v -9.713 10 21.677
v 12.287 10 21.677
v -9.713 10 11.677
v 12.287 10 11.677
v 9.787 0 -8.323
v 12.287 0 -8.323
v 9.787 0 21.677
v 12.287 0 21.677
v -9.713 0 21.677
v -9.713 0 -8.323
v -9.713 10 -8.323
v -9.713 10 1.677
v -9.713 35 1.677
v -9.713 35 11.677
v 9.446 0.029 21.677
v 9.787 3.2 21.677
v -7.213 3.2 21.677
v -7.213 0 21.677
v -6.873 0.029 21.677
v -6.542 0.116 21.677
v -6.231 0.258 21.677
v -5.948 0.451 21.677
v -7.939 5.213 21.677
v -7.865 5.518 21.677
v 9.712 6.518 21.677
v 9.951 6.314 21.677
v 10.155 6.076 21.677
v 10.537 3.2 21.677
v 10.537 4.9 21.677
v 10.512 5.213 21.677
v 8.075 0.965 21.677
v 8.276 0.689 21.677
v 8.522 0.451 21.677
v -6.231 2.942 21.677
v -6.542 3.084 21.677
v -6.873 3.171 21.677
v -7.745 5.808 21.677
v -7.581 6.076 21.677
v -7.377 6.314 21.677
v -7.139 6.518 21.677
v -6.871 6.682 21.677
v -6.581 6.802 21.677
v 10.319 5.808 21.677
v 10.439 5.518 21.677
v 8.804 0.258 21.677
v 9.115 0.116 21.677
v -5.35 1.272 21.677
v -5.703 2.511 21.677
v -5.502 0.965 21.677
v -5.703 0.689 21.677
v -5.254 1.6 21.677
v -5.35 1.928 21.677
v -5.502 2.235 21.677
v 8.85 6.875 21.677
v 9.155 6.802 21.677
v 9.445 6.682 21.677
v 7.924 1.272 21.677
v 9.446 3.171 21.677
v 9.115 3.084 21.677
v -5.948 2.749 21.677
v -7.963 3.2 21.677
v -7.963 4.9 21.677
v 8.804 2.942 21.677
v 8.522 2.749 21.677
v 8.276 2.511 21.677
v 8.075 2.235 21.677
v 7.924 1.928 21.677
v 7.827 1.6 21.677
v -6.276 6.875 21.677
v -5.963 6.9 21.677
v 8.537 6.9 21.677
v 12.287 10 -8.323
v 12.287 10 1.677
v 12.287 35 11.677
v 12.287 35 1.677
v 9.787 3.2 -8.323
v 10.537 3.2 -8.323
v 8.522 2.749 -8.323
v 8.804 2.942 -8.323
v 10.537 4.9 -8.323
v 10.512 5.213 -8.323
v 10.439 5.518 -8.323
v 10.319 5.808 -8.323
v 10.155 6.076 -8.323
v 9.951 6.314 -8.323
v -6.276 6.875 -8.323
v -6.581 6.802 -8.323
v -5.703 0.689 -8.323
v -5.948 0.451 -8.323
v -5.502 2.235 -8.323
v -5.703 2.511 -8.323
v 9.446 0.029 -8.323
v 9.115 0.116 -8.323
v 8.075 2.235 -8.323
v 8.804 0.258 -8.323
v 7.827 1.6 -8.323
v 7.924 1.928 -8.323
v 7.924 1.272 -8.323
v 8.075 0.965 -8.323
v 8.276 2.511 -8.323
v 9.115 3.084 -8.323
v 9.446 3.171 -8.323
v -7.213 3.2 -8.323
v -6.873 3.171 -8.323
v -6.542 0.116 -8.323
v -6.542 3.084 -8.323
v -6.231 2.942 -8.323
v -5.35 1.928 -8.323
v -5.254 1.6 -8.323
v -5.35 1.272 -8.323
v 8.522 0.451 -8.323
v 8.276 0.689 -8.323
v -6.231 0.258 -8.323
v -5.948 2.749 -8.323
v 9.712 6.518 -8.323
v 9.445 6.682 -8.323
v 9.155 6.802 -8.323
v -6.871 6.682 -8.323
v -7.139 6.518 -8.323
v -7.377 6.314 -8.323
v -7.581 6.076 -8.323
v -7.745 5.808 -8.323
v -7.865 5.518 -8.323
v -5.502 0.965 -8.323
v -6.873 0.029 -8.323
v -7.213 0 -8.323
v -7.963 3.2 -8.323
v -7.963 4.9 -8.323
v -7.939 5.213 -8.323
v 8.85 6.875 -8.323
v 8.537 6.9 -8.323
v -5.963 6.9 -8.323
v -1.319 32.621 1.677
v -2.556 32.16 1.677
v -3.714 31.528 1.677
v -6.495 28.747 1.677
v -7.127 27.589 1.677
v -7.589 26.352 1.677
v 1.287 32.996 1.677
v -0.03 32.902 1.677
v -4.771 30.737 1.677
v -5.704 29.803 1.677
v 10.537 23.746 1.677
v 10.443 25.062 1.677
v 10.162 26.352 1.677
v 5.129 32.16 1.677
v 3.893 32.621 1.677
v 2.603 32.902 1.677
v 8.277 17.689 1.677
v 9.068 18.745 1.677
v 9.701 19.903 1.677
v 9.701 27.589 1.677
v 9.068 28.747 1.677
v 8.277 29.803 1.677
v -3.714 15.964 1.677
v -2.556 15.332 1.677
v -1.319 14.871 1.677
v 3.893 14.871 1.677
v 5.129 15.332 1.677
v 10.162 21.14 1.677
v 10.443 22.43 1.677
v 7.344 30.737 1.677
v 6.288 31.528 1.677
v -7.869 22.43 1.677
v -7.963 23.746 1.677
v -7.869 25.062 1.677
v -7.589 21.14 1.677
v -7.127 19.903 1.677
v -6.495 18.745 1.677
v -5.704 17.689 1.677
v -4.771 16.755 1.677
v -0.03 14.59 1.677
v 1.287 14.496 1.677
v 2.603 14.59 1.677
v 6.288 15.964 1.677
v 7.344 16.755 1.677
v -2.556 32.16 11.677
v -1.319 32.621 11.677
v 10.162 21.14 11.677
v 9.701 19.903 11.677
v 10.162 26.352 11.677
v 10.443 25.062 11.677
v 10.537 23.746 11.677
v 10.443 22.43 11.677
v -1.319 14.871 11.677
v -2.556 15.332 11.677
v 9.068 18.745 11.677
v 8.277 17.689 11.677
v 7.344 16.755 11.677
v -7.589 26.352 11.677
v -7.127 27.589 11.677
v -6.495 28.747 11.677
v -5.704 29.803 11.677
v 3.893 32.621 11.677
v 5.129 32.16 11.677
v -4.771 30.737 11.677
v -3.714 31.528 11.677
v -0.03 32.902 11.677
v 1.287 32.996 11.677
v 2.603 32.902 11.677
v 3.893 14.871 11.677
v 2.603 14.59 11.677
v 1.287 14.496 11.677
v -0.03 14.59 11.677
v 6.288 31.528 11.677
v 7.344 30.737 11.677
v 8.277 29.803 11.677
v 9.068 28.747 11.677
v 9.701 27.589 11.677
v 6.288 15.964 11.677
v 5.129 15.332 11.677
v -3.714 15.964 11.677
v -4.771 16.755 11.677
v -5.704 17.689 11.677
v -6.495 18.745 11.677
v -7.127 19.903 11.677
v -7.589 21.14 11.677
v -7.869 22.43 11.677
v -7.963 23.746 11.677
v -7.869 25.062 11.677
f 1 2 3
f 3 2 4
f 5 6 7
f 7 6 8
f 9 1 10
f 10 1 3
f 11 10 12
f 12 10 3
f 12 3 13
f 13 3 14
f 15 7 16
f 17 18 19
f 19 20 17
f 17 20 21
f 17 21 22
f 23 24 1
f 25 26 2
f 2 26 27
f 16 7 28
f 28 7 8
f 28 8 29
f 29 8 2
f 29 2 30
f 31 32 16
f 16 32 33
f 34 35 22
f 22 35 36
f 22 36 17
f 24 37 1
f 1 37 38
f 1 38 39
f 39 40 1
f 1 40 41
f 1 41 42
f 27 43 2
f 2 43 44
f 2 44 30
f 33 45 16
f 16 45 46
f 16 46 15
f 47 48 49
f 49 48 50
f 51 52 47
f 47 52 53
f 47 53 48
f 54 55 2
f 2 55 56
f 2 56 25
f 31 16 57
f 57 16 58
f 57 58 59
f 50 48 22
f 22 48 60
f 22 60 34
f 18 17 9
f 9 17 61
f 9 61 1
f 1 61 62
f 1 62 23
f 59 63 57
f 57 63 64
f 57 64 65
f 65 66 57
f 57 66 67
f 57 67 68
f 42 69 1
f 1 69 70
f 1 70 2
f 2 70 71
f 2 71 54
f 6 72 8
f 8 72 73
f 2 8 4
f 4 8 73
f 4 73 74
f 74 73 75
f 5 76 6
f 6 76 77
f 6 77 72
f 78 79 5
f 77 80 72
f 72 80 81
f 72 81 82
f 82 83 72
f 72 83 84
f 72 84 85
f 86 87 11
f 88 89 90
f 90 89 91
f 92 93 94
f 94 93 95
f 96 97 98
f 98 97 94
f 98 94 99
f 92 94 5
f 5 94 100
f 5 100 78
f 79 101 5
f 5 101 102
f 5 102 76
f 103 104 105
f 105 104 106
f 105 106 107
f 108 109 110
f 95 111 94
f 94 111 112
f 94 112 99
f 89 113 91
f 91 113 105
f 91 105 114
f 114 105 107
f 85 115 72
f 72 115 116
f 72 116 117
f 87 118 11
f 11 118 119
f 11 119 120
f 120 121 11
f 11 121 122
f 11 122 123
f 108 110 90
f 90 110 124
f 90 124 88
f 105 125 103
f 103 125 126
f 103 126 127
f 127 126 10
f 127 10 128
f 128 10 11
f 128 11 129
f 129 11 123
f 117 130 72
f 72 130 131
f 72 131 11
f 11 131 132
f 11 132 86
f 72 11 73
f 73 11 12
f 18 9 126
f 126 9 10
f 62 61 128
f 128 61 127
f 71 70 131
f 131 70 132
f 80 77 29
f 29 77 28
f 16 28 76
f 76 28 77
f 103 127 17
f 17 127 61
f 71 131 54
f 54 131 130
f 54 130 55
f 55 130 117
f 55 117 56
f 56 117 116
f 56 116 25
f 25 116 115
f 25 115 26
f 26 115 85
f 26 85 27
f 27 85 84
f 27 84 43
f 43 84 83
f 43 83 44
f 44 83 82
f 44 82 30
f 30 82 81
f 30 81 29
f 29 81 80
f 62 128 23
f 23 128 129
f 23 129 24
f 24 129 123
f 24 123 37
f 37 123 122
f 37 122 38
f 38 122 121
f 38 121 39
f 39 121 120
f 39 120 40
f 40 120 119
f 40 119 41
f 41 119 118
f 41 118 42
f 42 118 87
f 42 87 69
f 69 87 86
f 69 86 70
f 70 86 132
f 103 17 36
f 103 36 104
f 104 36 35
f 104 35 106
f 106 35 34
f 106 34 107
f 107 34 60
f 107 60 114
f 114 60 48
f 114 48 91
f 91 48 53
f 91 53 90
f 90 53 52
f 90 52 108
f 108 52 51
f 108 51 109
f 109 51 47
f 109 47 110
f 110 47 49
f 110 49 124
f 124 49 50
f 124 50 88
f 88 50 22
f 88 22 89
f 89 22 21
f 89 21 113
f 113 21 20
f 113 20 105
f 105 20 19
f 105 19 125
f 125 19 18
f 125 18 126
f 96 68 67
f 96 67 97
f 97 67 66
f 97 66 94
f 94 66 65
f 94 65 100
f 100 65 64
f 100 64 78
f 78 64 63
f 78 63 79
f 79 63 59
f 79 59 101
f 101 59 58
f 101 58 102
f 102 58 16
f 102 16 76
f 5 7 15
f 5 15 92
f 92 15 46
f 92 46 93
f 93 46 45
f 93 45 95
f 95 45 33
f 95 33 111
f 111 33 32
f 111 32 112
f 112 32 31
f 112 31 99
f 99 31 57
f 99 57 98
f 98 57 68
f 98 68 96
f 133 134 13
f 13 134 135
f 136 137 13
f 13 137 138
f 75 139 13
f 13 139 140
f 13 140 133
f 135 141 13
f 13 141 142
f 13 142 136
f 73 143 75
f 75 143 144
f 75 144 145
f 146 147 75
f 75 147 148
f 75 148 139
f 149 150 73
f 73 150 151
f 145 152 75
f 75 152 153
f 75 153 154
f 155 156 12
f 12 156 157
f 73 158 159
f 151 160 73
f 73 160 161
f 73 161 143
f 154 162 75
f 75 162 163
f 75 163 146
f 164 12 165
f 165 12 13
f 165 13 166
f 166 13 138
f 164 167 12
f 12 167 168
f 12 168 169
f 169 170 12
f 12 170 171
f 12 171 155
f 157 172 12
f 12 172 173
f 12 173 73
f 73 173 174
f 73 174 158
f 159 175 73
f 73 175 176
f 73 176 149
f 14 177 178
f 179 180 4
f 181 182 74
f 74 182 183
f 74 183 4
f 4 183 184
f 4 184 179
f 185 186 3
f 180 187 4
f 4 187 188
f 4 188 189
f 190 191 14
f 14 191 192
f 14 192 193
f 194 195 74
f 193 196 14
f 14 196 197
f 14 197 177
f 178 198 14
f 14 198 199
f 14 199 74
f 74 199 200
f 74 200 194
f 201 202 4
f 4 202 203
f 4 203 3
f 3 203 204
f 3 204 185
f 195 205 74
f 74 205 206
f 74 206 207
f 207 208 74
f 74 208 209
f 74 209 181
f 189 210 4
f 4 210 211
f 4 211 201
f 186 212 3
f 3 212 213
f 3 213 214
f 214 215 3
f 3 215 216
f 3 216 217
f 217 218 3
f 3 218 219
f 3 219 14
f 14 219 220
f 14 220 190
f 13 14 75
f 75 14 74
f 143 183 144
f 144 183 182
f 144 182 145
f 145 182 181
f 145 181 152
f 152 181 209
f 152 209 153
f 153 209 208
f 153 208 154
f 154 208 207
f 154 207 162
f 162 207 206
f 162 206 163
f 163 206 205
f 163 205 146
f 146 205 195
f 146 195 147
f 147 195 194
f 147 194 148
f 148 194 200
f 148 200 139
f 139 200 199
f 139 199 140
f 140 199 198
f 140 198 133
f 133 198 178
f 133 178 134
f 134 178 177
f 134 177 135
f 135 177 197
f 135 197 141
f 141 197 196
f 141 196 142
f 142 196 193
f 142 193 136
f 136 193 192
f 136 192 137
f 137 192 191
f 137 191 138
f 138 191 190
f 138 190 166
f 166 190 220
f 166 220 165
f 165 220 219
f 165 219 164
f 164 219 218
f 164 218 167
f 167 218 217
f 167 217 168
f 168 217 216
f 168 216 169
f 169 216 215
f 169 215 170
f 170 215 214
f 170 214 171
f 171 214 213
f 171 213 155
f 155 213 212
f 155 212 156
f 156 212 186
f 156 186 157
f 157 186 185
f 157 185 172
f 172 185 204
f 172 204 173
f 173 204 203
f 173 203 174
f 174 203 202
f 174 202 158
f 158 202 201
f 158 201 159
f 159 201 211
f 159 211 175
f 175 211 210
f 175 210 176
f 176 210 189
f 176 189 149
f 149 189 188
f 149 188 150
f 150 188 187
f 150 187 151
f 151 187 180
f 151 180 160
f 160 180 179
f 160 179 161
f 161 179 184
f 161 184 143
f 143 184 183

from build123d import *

# Parameters (mm, degrees)
SKETCH1_W           = 22
SKETCH1_H           = 30
BOSS_EXTRUDE1_DEPTH = 10
CUT_EXTRUDE1_DEPTH  = 34.925879042
FILLET1_R           = 2
SKETCH4_W           = 22
SKETCH4_H           = 10
BOSS_EXTRUDE2_DEPTH = 25
CUT_EXTRUDE2_REACH  = 44.142
SKETCH5_R           = 9.25


with BuildPart() as part:
    # Sketch1 → Boss-Extrude1 (new body)
    with BuildSketch(Plane(origin=(0, 0, 0), x_dir=(1, 0, 0), z_dir=(0, 1, 0))):
        with Locations((1.286792453, -6.677358491)):
            Rectangle(SKETCH1_W, SKETCH1_H)
    extrude(amount=BOSS_EXTRUDE1_DEPTH)

    # Sketch2 → Cut-Extrude1 (cut, through all)
    with BuildSketch(Plane.XY.offset(21.677358491)):
        Polygon((-7.963207547, 6.9), (10.536792453, 6.9), (10.536792453, 3.2), (7.786792453, 3.2), (7.786792453, 0), (-5.213207547, 0), (-5.213207547, 3.2), (-7.963207547, 3.2), align=None)
    extrude(amount=-CUT_EXTRUDE1_DEPTH, mode=Mode.SUBTRACT)

    # Fillet1
    # the kernel refuses this fillet: 2 mm, written as the material it adds along each edge
    with BuildSketch(Plane(origin=(10.536792453, 6.9, 21.677358491), x_dir=(-1, 0, 0), z_dir=(0, 0, -1)), Plane(origin=(-7.963207547, 6.9, 21.677358491), x_dir=(0, -1, 0), z_dir=(0, 0, -1))) as fillet1_piece_1:
        with BuildLine():
            CenterArc((FILLET1_R, -FILLET1_R), FILLET1_R, 90, 90)
            Line((0, -FILLET1_R), (0, 0))
            Line((0, 0), (FILLET1_R, 0))
        make_face()
    extrude(amount=30)
    # the kernel refuses this fillet: 2 mm, written as the material it takes off along each edge
    with BuildSketch(Plane(origin=(-5.213207547, 0, 26.677358491), x_dir=(-1, 0, 0), z_dir=(0, 0, -1)), Plane(origin=(7.786792453, 0, 26.677358491), x_dir=(0, 1, 0), z_dir=(0, 0, -1)), Plane(origin=(7.786792453, 3.2, 26.677358491), x_dir=(1, 0, 0), z_dir=(0, 0, -1)), Plane(origin=(-5.213207547, 3.2, 26.677358491), x_dir=(0, -1, 0), z_dir=(0, 0, -1))) as fillet1_2_piece_1:
        with BuildLine():
            CenterArc((FILLET1_R, FILLET1_R), FILLET1_R, 180, 90)
            Line((0, FILLET1_R), (0, 0))
            Line((0, 0), (FILLET1_R, 0))
        make_face()
    extrude(amount=40, mode=Mode.SUBTRACT)

    # Sketch4 → Boss-Extrude2 (add)
    with BuildSketch(Plane(origin=(0, 10, 0), x_dir=(1, 0, 0), z_dir=(0, 1, 0))):
        with Locations((1.286792453, -6.677358491)):
            Rectangle(SKETCH4_W, SKETCH4_H)
    extrude(amount=BOSS_EXTRUDE2_DEPTH)

    # Sketch5 → Cut-Extrude2 (cut, up to next)
    with BuildSketch(Plane.XY.offset(11.677358491), mode=Mode.PRIVATE) as cut_extrude2_sk1:
        with Locations((1.286792453, 23.746)):
            Circle(SKETCH5_R)
    cut_extrude2_tool1 = extrude(cut_extrude2_sk1.sketch, amount=-CUT_EXTRUDE2_REACH, mode=Mode.PRIVATE) & part.part
    add(cut_extrude2_tool1.solids().sort_by_distance((1.286792, 23.746, 11.677358))[0], mode=Mode.SUBTRACT)


solid = part.part
